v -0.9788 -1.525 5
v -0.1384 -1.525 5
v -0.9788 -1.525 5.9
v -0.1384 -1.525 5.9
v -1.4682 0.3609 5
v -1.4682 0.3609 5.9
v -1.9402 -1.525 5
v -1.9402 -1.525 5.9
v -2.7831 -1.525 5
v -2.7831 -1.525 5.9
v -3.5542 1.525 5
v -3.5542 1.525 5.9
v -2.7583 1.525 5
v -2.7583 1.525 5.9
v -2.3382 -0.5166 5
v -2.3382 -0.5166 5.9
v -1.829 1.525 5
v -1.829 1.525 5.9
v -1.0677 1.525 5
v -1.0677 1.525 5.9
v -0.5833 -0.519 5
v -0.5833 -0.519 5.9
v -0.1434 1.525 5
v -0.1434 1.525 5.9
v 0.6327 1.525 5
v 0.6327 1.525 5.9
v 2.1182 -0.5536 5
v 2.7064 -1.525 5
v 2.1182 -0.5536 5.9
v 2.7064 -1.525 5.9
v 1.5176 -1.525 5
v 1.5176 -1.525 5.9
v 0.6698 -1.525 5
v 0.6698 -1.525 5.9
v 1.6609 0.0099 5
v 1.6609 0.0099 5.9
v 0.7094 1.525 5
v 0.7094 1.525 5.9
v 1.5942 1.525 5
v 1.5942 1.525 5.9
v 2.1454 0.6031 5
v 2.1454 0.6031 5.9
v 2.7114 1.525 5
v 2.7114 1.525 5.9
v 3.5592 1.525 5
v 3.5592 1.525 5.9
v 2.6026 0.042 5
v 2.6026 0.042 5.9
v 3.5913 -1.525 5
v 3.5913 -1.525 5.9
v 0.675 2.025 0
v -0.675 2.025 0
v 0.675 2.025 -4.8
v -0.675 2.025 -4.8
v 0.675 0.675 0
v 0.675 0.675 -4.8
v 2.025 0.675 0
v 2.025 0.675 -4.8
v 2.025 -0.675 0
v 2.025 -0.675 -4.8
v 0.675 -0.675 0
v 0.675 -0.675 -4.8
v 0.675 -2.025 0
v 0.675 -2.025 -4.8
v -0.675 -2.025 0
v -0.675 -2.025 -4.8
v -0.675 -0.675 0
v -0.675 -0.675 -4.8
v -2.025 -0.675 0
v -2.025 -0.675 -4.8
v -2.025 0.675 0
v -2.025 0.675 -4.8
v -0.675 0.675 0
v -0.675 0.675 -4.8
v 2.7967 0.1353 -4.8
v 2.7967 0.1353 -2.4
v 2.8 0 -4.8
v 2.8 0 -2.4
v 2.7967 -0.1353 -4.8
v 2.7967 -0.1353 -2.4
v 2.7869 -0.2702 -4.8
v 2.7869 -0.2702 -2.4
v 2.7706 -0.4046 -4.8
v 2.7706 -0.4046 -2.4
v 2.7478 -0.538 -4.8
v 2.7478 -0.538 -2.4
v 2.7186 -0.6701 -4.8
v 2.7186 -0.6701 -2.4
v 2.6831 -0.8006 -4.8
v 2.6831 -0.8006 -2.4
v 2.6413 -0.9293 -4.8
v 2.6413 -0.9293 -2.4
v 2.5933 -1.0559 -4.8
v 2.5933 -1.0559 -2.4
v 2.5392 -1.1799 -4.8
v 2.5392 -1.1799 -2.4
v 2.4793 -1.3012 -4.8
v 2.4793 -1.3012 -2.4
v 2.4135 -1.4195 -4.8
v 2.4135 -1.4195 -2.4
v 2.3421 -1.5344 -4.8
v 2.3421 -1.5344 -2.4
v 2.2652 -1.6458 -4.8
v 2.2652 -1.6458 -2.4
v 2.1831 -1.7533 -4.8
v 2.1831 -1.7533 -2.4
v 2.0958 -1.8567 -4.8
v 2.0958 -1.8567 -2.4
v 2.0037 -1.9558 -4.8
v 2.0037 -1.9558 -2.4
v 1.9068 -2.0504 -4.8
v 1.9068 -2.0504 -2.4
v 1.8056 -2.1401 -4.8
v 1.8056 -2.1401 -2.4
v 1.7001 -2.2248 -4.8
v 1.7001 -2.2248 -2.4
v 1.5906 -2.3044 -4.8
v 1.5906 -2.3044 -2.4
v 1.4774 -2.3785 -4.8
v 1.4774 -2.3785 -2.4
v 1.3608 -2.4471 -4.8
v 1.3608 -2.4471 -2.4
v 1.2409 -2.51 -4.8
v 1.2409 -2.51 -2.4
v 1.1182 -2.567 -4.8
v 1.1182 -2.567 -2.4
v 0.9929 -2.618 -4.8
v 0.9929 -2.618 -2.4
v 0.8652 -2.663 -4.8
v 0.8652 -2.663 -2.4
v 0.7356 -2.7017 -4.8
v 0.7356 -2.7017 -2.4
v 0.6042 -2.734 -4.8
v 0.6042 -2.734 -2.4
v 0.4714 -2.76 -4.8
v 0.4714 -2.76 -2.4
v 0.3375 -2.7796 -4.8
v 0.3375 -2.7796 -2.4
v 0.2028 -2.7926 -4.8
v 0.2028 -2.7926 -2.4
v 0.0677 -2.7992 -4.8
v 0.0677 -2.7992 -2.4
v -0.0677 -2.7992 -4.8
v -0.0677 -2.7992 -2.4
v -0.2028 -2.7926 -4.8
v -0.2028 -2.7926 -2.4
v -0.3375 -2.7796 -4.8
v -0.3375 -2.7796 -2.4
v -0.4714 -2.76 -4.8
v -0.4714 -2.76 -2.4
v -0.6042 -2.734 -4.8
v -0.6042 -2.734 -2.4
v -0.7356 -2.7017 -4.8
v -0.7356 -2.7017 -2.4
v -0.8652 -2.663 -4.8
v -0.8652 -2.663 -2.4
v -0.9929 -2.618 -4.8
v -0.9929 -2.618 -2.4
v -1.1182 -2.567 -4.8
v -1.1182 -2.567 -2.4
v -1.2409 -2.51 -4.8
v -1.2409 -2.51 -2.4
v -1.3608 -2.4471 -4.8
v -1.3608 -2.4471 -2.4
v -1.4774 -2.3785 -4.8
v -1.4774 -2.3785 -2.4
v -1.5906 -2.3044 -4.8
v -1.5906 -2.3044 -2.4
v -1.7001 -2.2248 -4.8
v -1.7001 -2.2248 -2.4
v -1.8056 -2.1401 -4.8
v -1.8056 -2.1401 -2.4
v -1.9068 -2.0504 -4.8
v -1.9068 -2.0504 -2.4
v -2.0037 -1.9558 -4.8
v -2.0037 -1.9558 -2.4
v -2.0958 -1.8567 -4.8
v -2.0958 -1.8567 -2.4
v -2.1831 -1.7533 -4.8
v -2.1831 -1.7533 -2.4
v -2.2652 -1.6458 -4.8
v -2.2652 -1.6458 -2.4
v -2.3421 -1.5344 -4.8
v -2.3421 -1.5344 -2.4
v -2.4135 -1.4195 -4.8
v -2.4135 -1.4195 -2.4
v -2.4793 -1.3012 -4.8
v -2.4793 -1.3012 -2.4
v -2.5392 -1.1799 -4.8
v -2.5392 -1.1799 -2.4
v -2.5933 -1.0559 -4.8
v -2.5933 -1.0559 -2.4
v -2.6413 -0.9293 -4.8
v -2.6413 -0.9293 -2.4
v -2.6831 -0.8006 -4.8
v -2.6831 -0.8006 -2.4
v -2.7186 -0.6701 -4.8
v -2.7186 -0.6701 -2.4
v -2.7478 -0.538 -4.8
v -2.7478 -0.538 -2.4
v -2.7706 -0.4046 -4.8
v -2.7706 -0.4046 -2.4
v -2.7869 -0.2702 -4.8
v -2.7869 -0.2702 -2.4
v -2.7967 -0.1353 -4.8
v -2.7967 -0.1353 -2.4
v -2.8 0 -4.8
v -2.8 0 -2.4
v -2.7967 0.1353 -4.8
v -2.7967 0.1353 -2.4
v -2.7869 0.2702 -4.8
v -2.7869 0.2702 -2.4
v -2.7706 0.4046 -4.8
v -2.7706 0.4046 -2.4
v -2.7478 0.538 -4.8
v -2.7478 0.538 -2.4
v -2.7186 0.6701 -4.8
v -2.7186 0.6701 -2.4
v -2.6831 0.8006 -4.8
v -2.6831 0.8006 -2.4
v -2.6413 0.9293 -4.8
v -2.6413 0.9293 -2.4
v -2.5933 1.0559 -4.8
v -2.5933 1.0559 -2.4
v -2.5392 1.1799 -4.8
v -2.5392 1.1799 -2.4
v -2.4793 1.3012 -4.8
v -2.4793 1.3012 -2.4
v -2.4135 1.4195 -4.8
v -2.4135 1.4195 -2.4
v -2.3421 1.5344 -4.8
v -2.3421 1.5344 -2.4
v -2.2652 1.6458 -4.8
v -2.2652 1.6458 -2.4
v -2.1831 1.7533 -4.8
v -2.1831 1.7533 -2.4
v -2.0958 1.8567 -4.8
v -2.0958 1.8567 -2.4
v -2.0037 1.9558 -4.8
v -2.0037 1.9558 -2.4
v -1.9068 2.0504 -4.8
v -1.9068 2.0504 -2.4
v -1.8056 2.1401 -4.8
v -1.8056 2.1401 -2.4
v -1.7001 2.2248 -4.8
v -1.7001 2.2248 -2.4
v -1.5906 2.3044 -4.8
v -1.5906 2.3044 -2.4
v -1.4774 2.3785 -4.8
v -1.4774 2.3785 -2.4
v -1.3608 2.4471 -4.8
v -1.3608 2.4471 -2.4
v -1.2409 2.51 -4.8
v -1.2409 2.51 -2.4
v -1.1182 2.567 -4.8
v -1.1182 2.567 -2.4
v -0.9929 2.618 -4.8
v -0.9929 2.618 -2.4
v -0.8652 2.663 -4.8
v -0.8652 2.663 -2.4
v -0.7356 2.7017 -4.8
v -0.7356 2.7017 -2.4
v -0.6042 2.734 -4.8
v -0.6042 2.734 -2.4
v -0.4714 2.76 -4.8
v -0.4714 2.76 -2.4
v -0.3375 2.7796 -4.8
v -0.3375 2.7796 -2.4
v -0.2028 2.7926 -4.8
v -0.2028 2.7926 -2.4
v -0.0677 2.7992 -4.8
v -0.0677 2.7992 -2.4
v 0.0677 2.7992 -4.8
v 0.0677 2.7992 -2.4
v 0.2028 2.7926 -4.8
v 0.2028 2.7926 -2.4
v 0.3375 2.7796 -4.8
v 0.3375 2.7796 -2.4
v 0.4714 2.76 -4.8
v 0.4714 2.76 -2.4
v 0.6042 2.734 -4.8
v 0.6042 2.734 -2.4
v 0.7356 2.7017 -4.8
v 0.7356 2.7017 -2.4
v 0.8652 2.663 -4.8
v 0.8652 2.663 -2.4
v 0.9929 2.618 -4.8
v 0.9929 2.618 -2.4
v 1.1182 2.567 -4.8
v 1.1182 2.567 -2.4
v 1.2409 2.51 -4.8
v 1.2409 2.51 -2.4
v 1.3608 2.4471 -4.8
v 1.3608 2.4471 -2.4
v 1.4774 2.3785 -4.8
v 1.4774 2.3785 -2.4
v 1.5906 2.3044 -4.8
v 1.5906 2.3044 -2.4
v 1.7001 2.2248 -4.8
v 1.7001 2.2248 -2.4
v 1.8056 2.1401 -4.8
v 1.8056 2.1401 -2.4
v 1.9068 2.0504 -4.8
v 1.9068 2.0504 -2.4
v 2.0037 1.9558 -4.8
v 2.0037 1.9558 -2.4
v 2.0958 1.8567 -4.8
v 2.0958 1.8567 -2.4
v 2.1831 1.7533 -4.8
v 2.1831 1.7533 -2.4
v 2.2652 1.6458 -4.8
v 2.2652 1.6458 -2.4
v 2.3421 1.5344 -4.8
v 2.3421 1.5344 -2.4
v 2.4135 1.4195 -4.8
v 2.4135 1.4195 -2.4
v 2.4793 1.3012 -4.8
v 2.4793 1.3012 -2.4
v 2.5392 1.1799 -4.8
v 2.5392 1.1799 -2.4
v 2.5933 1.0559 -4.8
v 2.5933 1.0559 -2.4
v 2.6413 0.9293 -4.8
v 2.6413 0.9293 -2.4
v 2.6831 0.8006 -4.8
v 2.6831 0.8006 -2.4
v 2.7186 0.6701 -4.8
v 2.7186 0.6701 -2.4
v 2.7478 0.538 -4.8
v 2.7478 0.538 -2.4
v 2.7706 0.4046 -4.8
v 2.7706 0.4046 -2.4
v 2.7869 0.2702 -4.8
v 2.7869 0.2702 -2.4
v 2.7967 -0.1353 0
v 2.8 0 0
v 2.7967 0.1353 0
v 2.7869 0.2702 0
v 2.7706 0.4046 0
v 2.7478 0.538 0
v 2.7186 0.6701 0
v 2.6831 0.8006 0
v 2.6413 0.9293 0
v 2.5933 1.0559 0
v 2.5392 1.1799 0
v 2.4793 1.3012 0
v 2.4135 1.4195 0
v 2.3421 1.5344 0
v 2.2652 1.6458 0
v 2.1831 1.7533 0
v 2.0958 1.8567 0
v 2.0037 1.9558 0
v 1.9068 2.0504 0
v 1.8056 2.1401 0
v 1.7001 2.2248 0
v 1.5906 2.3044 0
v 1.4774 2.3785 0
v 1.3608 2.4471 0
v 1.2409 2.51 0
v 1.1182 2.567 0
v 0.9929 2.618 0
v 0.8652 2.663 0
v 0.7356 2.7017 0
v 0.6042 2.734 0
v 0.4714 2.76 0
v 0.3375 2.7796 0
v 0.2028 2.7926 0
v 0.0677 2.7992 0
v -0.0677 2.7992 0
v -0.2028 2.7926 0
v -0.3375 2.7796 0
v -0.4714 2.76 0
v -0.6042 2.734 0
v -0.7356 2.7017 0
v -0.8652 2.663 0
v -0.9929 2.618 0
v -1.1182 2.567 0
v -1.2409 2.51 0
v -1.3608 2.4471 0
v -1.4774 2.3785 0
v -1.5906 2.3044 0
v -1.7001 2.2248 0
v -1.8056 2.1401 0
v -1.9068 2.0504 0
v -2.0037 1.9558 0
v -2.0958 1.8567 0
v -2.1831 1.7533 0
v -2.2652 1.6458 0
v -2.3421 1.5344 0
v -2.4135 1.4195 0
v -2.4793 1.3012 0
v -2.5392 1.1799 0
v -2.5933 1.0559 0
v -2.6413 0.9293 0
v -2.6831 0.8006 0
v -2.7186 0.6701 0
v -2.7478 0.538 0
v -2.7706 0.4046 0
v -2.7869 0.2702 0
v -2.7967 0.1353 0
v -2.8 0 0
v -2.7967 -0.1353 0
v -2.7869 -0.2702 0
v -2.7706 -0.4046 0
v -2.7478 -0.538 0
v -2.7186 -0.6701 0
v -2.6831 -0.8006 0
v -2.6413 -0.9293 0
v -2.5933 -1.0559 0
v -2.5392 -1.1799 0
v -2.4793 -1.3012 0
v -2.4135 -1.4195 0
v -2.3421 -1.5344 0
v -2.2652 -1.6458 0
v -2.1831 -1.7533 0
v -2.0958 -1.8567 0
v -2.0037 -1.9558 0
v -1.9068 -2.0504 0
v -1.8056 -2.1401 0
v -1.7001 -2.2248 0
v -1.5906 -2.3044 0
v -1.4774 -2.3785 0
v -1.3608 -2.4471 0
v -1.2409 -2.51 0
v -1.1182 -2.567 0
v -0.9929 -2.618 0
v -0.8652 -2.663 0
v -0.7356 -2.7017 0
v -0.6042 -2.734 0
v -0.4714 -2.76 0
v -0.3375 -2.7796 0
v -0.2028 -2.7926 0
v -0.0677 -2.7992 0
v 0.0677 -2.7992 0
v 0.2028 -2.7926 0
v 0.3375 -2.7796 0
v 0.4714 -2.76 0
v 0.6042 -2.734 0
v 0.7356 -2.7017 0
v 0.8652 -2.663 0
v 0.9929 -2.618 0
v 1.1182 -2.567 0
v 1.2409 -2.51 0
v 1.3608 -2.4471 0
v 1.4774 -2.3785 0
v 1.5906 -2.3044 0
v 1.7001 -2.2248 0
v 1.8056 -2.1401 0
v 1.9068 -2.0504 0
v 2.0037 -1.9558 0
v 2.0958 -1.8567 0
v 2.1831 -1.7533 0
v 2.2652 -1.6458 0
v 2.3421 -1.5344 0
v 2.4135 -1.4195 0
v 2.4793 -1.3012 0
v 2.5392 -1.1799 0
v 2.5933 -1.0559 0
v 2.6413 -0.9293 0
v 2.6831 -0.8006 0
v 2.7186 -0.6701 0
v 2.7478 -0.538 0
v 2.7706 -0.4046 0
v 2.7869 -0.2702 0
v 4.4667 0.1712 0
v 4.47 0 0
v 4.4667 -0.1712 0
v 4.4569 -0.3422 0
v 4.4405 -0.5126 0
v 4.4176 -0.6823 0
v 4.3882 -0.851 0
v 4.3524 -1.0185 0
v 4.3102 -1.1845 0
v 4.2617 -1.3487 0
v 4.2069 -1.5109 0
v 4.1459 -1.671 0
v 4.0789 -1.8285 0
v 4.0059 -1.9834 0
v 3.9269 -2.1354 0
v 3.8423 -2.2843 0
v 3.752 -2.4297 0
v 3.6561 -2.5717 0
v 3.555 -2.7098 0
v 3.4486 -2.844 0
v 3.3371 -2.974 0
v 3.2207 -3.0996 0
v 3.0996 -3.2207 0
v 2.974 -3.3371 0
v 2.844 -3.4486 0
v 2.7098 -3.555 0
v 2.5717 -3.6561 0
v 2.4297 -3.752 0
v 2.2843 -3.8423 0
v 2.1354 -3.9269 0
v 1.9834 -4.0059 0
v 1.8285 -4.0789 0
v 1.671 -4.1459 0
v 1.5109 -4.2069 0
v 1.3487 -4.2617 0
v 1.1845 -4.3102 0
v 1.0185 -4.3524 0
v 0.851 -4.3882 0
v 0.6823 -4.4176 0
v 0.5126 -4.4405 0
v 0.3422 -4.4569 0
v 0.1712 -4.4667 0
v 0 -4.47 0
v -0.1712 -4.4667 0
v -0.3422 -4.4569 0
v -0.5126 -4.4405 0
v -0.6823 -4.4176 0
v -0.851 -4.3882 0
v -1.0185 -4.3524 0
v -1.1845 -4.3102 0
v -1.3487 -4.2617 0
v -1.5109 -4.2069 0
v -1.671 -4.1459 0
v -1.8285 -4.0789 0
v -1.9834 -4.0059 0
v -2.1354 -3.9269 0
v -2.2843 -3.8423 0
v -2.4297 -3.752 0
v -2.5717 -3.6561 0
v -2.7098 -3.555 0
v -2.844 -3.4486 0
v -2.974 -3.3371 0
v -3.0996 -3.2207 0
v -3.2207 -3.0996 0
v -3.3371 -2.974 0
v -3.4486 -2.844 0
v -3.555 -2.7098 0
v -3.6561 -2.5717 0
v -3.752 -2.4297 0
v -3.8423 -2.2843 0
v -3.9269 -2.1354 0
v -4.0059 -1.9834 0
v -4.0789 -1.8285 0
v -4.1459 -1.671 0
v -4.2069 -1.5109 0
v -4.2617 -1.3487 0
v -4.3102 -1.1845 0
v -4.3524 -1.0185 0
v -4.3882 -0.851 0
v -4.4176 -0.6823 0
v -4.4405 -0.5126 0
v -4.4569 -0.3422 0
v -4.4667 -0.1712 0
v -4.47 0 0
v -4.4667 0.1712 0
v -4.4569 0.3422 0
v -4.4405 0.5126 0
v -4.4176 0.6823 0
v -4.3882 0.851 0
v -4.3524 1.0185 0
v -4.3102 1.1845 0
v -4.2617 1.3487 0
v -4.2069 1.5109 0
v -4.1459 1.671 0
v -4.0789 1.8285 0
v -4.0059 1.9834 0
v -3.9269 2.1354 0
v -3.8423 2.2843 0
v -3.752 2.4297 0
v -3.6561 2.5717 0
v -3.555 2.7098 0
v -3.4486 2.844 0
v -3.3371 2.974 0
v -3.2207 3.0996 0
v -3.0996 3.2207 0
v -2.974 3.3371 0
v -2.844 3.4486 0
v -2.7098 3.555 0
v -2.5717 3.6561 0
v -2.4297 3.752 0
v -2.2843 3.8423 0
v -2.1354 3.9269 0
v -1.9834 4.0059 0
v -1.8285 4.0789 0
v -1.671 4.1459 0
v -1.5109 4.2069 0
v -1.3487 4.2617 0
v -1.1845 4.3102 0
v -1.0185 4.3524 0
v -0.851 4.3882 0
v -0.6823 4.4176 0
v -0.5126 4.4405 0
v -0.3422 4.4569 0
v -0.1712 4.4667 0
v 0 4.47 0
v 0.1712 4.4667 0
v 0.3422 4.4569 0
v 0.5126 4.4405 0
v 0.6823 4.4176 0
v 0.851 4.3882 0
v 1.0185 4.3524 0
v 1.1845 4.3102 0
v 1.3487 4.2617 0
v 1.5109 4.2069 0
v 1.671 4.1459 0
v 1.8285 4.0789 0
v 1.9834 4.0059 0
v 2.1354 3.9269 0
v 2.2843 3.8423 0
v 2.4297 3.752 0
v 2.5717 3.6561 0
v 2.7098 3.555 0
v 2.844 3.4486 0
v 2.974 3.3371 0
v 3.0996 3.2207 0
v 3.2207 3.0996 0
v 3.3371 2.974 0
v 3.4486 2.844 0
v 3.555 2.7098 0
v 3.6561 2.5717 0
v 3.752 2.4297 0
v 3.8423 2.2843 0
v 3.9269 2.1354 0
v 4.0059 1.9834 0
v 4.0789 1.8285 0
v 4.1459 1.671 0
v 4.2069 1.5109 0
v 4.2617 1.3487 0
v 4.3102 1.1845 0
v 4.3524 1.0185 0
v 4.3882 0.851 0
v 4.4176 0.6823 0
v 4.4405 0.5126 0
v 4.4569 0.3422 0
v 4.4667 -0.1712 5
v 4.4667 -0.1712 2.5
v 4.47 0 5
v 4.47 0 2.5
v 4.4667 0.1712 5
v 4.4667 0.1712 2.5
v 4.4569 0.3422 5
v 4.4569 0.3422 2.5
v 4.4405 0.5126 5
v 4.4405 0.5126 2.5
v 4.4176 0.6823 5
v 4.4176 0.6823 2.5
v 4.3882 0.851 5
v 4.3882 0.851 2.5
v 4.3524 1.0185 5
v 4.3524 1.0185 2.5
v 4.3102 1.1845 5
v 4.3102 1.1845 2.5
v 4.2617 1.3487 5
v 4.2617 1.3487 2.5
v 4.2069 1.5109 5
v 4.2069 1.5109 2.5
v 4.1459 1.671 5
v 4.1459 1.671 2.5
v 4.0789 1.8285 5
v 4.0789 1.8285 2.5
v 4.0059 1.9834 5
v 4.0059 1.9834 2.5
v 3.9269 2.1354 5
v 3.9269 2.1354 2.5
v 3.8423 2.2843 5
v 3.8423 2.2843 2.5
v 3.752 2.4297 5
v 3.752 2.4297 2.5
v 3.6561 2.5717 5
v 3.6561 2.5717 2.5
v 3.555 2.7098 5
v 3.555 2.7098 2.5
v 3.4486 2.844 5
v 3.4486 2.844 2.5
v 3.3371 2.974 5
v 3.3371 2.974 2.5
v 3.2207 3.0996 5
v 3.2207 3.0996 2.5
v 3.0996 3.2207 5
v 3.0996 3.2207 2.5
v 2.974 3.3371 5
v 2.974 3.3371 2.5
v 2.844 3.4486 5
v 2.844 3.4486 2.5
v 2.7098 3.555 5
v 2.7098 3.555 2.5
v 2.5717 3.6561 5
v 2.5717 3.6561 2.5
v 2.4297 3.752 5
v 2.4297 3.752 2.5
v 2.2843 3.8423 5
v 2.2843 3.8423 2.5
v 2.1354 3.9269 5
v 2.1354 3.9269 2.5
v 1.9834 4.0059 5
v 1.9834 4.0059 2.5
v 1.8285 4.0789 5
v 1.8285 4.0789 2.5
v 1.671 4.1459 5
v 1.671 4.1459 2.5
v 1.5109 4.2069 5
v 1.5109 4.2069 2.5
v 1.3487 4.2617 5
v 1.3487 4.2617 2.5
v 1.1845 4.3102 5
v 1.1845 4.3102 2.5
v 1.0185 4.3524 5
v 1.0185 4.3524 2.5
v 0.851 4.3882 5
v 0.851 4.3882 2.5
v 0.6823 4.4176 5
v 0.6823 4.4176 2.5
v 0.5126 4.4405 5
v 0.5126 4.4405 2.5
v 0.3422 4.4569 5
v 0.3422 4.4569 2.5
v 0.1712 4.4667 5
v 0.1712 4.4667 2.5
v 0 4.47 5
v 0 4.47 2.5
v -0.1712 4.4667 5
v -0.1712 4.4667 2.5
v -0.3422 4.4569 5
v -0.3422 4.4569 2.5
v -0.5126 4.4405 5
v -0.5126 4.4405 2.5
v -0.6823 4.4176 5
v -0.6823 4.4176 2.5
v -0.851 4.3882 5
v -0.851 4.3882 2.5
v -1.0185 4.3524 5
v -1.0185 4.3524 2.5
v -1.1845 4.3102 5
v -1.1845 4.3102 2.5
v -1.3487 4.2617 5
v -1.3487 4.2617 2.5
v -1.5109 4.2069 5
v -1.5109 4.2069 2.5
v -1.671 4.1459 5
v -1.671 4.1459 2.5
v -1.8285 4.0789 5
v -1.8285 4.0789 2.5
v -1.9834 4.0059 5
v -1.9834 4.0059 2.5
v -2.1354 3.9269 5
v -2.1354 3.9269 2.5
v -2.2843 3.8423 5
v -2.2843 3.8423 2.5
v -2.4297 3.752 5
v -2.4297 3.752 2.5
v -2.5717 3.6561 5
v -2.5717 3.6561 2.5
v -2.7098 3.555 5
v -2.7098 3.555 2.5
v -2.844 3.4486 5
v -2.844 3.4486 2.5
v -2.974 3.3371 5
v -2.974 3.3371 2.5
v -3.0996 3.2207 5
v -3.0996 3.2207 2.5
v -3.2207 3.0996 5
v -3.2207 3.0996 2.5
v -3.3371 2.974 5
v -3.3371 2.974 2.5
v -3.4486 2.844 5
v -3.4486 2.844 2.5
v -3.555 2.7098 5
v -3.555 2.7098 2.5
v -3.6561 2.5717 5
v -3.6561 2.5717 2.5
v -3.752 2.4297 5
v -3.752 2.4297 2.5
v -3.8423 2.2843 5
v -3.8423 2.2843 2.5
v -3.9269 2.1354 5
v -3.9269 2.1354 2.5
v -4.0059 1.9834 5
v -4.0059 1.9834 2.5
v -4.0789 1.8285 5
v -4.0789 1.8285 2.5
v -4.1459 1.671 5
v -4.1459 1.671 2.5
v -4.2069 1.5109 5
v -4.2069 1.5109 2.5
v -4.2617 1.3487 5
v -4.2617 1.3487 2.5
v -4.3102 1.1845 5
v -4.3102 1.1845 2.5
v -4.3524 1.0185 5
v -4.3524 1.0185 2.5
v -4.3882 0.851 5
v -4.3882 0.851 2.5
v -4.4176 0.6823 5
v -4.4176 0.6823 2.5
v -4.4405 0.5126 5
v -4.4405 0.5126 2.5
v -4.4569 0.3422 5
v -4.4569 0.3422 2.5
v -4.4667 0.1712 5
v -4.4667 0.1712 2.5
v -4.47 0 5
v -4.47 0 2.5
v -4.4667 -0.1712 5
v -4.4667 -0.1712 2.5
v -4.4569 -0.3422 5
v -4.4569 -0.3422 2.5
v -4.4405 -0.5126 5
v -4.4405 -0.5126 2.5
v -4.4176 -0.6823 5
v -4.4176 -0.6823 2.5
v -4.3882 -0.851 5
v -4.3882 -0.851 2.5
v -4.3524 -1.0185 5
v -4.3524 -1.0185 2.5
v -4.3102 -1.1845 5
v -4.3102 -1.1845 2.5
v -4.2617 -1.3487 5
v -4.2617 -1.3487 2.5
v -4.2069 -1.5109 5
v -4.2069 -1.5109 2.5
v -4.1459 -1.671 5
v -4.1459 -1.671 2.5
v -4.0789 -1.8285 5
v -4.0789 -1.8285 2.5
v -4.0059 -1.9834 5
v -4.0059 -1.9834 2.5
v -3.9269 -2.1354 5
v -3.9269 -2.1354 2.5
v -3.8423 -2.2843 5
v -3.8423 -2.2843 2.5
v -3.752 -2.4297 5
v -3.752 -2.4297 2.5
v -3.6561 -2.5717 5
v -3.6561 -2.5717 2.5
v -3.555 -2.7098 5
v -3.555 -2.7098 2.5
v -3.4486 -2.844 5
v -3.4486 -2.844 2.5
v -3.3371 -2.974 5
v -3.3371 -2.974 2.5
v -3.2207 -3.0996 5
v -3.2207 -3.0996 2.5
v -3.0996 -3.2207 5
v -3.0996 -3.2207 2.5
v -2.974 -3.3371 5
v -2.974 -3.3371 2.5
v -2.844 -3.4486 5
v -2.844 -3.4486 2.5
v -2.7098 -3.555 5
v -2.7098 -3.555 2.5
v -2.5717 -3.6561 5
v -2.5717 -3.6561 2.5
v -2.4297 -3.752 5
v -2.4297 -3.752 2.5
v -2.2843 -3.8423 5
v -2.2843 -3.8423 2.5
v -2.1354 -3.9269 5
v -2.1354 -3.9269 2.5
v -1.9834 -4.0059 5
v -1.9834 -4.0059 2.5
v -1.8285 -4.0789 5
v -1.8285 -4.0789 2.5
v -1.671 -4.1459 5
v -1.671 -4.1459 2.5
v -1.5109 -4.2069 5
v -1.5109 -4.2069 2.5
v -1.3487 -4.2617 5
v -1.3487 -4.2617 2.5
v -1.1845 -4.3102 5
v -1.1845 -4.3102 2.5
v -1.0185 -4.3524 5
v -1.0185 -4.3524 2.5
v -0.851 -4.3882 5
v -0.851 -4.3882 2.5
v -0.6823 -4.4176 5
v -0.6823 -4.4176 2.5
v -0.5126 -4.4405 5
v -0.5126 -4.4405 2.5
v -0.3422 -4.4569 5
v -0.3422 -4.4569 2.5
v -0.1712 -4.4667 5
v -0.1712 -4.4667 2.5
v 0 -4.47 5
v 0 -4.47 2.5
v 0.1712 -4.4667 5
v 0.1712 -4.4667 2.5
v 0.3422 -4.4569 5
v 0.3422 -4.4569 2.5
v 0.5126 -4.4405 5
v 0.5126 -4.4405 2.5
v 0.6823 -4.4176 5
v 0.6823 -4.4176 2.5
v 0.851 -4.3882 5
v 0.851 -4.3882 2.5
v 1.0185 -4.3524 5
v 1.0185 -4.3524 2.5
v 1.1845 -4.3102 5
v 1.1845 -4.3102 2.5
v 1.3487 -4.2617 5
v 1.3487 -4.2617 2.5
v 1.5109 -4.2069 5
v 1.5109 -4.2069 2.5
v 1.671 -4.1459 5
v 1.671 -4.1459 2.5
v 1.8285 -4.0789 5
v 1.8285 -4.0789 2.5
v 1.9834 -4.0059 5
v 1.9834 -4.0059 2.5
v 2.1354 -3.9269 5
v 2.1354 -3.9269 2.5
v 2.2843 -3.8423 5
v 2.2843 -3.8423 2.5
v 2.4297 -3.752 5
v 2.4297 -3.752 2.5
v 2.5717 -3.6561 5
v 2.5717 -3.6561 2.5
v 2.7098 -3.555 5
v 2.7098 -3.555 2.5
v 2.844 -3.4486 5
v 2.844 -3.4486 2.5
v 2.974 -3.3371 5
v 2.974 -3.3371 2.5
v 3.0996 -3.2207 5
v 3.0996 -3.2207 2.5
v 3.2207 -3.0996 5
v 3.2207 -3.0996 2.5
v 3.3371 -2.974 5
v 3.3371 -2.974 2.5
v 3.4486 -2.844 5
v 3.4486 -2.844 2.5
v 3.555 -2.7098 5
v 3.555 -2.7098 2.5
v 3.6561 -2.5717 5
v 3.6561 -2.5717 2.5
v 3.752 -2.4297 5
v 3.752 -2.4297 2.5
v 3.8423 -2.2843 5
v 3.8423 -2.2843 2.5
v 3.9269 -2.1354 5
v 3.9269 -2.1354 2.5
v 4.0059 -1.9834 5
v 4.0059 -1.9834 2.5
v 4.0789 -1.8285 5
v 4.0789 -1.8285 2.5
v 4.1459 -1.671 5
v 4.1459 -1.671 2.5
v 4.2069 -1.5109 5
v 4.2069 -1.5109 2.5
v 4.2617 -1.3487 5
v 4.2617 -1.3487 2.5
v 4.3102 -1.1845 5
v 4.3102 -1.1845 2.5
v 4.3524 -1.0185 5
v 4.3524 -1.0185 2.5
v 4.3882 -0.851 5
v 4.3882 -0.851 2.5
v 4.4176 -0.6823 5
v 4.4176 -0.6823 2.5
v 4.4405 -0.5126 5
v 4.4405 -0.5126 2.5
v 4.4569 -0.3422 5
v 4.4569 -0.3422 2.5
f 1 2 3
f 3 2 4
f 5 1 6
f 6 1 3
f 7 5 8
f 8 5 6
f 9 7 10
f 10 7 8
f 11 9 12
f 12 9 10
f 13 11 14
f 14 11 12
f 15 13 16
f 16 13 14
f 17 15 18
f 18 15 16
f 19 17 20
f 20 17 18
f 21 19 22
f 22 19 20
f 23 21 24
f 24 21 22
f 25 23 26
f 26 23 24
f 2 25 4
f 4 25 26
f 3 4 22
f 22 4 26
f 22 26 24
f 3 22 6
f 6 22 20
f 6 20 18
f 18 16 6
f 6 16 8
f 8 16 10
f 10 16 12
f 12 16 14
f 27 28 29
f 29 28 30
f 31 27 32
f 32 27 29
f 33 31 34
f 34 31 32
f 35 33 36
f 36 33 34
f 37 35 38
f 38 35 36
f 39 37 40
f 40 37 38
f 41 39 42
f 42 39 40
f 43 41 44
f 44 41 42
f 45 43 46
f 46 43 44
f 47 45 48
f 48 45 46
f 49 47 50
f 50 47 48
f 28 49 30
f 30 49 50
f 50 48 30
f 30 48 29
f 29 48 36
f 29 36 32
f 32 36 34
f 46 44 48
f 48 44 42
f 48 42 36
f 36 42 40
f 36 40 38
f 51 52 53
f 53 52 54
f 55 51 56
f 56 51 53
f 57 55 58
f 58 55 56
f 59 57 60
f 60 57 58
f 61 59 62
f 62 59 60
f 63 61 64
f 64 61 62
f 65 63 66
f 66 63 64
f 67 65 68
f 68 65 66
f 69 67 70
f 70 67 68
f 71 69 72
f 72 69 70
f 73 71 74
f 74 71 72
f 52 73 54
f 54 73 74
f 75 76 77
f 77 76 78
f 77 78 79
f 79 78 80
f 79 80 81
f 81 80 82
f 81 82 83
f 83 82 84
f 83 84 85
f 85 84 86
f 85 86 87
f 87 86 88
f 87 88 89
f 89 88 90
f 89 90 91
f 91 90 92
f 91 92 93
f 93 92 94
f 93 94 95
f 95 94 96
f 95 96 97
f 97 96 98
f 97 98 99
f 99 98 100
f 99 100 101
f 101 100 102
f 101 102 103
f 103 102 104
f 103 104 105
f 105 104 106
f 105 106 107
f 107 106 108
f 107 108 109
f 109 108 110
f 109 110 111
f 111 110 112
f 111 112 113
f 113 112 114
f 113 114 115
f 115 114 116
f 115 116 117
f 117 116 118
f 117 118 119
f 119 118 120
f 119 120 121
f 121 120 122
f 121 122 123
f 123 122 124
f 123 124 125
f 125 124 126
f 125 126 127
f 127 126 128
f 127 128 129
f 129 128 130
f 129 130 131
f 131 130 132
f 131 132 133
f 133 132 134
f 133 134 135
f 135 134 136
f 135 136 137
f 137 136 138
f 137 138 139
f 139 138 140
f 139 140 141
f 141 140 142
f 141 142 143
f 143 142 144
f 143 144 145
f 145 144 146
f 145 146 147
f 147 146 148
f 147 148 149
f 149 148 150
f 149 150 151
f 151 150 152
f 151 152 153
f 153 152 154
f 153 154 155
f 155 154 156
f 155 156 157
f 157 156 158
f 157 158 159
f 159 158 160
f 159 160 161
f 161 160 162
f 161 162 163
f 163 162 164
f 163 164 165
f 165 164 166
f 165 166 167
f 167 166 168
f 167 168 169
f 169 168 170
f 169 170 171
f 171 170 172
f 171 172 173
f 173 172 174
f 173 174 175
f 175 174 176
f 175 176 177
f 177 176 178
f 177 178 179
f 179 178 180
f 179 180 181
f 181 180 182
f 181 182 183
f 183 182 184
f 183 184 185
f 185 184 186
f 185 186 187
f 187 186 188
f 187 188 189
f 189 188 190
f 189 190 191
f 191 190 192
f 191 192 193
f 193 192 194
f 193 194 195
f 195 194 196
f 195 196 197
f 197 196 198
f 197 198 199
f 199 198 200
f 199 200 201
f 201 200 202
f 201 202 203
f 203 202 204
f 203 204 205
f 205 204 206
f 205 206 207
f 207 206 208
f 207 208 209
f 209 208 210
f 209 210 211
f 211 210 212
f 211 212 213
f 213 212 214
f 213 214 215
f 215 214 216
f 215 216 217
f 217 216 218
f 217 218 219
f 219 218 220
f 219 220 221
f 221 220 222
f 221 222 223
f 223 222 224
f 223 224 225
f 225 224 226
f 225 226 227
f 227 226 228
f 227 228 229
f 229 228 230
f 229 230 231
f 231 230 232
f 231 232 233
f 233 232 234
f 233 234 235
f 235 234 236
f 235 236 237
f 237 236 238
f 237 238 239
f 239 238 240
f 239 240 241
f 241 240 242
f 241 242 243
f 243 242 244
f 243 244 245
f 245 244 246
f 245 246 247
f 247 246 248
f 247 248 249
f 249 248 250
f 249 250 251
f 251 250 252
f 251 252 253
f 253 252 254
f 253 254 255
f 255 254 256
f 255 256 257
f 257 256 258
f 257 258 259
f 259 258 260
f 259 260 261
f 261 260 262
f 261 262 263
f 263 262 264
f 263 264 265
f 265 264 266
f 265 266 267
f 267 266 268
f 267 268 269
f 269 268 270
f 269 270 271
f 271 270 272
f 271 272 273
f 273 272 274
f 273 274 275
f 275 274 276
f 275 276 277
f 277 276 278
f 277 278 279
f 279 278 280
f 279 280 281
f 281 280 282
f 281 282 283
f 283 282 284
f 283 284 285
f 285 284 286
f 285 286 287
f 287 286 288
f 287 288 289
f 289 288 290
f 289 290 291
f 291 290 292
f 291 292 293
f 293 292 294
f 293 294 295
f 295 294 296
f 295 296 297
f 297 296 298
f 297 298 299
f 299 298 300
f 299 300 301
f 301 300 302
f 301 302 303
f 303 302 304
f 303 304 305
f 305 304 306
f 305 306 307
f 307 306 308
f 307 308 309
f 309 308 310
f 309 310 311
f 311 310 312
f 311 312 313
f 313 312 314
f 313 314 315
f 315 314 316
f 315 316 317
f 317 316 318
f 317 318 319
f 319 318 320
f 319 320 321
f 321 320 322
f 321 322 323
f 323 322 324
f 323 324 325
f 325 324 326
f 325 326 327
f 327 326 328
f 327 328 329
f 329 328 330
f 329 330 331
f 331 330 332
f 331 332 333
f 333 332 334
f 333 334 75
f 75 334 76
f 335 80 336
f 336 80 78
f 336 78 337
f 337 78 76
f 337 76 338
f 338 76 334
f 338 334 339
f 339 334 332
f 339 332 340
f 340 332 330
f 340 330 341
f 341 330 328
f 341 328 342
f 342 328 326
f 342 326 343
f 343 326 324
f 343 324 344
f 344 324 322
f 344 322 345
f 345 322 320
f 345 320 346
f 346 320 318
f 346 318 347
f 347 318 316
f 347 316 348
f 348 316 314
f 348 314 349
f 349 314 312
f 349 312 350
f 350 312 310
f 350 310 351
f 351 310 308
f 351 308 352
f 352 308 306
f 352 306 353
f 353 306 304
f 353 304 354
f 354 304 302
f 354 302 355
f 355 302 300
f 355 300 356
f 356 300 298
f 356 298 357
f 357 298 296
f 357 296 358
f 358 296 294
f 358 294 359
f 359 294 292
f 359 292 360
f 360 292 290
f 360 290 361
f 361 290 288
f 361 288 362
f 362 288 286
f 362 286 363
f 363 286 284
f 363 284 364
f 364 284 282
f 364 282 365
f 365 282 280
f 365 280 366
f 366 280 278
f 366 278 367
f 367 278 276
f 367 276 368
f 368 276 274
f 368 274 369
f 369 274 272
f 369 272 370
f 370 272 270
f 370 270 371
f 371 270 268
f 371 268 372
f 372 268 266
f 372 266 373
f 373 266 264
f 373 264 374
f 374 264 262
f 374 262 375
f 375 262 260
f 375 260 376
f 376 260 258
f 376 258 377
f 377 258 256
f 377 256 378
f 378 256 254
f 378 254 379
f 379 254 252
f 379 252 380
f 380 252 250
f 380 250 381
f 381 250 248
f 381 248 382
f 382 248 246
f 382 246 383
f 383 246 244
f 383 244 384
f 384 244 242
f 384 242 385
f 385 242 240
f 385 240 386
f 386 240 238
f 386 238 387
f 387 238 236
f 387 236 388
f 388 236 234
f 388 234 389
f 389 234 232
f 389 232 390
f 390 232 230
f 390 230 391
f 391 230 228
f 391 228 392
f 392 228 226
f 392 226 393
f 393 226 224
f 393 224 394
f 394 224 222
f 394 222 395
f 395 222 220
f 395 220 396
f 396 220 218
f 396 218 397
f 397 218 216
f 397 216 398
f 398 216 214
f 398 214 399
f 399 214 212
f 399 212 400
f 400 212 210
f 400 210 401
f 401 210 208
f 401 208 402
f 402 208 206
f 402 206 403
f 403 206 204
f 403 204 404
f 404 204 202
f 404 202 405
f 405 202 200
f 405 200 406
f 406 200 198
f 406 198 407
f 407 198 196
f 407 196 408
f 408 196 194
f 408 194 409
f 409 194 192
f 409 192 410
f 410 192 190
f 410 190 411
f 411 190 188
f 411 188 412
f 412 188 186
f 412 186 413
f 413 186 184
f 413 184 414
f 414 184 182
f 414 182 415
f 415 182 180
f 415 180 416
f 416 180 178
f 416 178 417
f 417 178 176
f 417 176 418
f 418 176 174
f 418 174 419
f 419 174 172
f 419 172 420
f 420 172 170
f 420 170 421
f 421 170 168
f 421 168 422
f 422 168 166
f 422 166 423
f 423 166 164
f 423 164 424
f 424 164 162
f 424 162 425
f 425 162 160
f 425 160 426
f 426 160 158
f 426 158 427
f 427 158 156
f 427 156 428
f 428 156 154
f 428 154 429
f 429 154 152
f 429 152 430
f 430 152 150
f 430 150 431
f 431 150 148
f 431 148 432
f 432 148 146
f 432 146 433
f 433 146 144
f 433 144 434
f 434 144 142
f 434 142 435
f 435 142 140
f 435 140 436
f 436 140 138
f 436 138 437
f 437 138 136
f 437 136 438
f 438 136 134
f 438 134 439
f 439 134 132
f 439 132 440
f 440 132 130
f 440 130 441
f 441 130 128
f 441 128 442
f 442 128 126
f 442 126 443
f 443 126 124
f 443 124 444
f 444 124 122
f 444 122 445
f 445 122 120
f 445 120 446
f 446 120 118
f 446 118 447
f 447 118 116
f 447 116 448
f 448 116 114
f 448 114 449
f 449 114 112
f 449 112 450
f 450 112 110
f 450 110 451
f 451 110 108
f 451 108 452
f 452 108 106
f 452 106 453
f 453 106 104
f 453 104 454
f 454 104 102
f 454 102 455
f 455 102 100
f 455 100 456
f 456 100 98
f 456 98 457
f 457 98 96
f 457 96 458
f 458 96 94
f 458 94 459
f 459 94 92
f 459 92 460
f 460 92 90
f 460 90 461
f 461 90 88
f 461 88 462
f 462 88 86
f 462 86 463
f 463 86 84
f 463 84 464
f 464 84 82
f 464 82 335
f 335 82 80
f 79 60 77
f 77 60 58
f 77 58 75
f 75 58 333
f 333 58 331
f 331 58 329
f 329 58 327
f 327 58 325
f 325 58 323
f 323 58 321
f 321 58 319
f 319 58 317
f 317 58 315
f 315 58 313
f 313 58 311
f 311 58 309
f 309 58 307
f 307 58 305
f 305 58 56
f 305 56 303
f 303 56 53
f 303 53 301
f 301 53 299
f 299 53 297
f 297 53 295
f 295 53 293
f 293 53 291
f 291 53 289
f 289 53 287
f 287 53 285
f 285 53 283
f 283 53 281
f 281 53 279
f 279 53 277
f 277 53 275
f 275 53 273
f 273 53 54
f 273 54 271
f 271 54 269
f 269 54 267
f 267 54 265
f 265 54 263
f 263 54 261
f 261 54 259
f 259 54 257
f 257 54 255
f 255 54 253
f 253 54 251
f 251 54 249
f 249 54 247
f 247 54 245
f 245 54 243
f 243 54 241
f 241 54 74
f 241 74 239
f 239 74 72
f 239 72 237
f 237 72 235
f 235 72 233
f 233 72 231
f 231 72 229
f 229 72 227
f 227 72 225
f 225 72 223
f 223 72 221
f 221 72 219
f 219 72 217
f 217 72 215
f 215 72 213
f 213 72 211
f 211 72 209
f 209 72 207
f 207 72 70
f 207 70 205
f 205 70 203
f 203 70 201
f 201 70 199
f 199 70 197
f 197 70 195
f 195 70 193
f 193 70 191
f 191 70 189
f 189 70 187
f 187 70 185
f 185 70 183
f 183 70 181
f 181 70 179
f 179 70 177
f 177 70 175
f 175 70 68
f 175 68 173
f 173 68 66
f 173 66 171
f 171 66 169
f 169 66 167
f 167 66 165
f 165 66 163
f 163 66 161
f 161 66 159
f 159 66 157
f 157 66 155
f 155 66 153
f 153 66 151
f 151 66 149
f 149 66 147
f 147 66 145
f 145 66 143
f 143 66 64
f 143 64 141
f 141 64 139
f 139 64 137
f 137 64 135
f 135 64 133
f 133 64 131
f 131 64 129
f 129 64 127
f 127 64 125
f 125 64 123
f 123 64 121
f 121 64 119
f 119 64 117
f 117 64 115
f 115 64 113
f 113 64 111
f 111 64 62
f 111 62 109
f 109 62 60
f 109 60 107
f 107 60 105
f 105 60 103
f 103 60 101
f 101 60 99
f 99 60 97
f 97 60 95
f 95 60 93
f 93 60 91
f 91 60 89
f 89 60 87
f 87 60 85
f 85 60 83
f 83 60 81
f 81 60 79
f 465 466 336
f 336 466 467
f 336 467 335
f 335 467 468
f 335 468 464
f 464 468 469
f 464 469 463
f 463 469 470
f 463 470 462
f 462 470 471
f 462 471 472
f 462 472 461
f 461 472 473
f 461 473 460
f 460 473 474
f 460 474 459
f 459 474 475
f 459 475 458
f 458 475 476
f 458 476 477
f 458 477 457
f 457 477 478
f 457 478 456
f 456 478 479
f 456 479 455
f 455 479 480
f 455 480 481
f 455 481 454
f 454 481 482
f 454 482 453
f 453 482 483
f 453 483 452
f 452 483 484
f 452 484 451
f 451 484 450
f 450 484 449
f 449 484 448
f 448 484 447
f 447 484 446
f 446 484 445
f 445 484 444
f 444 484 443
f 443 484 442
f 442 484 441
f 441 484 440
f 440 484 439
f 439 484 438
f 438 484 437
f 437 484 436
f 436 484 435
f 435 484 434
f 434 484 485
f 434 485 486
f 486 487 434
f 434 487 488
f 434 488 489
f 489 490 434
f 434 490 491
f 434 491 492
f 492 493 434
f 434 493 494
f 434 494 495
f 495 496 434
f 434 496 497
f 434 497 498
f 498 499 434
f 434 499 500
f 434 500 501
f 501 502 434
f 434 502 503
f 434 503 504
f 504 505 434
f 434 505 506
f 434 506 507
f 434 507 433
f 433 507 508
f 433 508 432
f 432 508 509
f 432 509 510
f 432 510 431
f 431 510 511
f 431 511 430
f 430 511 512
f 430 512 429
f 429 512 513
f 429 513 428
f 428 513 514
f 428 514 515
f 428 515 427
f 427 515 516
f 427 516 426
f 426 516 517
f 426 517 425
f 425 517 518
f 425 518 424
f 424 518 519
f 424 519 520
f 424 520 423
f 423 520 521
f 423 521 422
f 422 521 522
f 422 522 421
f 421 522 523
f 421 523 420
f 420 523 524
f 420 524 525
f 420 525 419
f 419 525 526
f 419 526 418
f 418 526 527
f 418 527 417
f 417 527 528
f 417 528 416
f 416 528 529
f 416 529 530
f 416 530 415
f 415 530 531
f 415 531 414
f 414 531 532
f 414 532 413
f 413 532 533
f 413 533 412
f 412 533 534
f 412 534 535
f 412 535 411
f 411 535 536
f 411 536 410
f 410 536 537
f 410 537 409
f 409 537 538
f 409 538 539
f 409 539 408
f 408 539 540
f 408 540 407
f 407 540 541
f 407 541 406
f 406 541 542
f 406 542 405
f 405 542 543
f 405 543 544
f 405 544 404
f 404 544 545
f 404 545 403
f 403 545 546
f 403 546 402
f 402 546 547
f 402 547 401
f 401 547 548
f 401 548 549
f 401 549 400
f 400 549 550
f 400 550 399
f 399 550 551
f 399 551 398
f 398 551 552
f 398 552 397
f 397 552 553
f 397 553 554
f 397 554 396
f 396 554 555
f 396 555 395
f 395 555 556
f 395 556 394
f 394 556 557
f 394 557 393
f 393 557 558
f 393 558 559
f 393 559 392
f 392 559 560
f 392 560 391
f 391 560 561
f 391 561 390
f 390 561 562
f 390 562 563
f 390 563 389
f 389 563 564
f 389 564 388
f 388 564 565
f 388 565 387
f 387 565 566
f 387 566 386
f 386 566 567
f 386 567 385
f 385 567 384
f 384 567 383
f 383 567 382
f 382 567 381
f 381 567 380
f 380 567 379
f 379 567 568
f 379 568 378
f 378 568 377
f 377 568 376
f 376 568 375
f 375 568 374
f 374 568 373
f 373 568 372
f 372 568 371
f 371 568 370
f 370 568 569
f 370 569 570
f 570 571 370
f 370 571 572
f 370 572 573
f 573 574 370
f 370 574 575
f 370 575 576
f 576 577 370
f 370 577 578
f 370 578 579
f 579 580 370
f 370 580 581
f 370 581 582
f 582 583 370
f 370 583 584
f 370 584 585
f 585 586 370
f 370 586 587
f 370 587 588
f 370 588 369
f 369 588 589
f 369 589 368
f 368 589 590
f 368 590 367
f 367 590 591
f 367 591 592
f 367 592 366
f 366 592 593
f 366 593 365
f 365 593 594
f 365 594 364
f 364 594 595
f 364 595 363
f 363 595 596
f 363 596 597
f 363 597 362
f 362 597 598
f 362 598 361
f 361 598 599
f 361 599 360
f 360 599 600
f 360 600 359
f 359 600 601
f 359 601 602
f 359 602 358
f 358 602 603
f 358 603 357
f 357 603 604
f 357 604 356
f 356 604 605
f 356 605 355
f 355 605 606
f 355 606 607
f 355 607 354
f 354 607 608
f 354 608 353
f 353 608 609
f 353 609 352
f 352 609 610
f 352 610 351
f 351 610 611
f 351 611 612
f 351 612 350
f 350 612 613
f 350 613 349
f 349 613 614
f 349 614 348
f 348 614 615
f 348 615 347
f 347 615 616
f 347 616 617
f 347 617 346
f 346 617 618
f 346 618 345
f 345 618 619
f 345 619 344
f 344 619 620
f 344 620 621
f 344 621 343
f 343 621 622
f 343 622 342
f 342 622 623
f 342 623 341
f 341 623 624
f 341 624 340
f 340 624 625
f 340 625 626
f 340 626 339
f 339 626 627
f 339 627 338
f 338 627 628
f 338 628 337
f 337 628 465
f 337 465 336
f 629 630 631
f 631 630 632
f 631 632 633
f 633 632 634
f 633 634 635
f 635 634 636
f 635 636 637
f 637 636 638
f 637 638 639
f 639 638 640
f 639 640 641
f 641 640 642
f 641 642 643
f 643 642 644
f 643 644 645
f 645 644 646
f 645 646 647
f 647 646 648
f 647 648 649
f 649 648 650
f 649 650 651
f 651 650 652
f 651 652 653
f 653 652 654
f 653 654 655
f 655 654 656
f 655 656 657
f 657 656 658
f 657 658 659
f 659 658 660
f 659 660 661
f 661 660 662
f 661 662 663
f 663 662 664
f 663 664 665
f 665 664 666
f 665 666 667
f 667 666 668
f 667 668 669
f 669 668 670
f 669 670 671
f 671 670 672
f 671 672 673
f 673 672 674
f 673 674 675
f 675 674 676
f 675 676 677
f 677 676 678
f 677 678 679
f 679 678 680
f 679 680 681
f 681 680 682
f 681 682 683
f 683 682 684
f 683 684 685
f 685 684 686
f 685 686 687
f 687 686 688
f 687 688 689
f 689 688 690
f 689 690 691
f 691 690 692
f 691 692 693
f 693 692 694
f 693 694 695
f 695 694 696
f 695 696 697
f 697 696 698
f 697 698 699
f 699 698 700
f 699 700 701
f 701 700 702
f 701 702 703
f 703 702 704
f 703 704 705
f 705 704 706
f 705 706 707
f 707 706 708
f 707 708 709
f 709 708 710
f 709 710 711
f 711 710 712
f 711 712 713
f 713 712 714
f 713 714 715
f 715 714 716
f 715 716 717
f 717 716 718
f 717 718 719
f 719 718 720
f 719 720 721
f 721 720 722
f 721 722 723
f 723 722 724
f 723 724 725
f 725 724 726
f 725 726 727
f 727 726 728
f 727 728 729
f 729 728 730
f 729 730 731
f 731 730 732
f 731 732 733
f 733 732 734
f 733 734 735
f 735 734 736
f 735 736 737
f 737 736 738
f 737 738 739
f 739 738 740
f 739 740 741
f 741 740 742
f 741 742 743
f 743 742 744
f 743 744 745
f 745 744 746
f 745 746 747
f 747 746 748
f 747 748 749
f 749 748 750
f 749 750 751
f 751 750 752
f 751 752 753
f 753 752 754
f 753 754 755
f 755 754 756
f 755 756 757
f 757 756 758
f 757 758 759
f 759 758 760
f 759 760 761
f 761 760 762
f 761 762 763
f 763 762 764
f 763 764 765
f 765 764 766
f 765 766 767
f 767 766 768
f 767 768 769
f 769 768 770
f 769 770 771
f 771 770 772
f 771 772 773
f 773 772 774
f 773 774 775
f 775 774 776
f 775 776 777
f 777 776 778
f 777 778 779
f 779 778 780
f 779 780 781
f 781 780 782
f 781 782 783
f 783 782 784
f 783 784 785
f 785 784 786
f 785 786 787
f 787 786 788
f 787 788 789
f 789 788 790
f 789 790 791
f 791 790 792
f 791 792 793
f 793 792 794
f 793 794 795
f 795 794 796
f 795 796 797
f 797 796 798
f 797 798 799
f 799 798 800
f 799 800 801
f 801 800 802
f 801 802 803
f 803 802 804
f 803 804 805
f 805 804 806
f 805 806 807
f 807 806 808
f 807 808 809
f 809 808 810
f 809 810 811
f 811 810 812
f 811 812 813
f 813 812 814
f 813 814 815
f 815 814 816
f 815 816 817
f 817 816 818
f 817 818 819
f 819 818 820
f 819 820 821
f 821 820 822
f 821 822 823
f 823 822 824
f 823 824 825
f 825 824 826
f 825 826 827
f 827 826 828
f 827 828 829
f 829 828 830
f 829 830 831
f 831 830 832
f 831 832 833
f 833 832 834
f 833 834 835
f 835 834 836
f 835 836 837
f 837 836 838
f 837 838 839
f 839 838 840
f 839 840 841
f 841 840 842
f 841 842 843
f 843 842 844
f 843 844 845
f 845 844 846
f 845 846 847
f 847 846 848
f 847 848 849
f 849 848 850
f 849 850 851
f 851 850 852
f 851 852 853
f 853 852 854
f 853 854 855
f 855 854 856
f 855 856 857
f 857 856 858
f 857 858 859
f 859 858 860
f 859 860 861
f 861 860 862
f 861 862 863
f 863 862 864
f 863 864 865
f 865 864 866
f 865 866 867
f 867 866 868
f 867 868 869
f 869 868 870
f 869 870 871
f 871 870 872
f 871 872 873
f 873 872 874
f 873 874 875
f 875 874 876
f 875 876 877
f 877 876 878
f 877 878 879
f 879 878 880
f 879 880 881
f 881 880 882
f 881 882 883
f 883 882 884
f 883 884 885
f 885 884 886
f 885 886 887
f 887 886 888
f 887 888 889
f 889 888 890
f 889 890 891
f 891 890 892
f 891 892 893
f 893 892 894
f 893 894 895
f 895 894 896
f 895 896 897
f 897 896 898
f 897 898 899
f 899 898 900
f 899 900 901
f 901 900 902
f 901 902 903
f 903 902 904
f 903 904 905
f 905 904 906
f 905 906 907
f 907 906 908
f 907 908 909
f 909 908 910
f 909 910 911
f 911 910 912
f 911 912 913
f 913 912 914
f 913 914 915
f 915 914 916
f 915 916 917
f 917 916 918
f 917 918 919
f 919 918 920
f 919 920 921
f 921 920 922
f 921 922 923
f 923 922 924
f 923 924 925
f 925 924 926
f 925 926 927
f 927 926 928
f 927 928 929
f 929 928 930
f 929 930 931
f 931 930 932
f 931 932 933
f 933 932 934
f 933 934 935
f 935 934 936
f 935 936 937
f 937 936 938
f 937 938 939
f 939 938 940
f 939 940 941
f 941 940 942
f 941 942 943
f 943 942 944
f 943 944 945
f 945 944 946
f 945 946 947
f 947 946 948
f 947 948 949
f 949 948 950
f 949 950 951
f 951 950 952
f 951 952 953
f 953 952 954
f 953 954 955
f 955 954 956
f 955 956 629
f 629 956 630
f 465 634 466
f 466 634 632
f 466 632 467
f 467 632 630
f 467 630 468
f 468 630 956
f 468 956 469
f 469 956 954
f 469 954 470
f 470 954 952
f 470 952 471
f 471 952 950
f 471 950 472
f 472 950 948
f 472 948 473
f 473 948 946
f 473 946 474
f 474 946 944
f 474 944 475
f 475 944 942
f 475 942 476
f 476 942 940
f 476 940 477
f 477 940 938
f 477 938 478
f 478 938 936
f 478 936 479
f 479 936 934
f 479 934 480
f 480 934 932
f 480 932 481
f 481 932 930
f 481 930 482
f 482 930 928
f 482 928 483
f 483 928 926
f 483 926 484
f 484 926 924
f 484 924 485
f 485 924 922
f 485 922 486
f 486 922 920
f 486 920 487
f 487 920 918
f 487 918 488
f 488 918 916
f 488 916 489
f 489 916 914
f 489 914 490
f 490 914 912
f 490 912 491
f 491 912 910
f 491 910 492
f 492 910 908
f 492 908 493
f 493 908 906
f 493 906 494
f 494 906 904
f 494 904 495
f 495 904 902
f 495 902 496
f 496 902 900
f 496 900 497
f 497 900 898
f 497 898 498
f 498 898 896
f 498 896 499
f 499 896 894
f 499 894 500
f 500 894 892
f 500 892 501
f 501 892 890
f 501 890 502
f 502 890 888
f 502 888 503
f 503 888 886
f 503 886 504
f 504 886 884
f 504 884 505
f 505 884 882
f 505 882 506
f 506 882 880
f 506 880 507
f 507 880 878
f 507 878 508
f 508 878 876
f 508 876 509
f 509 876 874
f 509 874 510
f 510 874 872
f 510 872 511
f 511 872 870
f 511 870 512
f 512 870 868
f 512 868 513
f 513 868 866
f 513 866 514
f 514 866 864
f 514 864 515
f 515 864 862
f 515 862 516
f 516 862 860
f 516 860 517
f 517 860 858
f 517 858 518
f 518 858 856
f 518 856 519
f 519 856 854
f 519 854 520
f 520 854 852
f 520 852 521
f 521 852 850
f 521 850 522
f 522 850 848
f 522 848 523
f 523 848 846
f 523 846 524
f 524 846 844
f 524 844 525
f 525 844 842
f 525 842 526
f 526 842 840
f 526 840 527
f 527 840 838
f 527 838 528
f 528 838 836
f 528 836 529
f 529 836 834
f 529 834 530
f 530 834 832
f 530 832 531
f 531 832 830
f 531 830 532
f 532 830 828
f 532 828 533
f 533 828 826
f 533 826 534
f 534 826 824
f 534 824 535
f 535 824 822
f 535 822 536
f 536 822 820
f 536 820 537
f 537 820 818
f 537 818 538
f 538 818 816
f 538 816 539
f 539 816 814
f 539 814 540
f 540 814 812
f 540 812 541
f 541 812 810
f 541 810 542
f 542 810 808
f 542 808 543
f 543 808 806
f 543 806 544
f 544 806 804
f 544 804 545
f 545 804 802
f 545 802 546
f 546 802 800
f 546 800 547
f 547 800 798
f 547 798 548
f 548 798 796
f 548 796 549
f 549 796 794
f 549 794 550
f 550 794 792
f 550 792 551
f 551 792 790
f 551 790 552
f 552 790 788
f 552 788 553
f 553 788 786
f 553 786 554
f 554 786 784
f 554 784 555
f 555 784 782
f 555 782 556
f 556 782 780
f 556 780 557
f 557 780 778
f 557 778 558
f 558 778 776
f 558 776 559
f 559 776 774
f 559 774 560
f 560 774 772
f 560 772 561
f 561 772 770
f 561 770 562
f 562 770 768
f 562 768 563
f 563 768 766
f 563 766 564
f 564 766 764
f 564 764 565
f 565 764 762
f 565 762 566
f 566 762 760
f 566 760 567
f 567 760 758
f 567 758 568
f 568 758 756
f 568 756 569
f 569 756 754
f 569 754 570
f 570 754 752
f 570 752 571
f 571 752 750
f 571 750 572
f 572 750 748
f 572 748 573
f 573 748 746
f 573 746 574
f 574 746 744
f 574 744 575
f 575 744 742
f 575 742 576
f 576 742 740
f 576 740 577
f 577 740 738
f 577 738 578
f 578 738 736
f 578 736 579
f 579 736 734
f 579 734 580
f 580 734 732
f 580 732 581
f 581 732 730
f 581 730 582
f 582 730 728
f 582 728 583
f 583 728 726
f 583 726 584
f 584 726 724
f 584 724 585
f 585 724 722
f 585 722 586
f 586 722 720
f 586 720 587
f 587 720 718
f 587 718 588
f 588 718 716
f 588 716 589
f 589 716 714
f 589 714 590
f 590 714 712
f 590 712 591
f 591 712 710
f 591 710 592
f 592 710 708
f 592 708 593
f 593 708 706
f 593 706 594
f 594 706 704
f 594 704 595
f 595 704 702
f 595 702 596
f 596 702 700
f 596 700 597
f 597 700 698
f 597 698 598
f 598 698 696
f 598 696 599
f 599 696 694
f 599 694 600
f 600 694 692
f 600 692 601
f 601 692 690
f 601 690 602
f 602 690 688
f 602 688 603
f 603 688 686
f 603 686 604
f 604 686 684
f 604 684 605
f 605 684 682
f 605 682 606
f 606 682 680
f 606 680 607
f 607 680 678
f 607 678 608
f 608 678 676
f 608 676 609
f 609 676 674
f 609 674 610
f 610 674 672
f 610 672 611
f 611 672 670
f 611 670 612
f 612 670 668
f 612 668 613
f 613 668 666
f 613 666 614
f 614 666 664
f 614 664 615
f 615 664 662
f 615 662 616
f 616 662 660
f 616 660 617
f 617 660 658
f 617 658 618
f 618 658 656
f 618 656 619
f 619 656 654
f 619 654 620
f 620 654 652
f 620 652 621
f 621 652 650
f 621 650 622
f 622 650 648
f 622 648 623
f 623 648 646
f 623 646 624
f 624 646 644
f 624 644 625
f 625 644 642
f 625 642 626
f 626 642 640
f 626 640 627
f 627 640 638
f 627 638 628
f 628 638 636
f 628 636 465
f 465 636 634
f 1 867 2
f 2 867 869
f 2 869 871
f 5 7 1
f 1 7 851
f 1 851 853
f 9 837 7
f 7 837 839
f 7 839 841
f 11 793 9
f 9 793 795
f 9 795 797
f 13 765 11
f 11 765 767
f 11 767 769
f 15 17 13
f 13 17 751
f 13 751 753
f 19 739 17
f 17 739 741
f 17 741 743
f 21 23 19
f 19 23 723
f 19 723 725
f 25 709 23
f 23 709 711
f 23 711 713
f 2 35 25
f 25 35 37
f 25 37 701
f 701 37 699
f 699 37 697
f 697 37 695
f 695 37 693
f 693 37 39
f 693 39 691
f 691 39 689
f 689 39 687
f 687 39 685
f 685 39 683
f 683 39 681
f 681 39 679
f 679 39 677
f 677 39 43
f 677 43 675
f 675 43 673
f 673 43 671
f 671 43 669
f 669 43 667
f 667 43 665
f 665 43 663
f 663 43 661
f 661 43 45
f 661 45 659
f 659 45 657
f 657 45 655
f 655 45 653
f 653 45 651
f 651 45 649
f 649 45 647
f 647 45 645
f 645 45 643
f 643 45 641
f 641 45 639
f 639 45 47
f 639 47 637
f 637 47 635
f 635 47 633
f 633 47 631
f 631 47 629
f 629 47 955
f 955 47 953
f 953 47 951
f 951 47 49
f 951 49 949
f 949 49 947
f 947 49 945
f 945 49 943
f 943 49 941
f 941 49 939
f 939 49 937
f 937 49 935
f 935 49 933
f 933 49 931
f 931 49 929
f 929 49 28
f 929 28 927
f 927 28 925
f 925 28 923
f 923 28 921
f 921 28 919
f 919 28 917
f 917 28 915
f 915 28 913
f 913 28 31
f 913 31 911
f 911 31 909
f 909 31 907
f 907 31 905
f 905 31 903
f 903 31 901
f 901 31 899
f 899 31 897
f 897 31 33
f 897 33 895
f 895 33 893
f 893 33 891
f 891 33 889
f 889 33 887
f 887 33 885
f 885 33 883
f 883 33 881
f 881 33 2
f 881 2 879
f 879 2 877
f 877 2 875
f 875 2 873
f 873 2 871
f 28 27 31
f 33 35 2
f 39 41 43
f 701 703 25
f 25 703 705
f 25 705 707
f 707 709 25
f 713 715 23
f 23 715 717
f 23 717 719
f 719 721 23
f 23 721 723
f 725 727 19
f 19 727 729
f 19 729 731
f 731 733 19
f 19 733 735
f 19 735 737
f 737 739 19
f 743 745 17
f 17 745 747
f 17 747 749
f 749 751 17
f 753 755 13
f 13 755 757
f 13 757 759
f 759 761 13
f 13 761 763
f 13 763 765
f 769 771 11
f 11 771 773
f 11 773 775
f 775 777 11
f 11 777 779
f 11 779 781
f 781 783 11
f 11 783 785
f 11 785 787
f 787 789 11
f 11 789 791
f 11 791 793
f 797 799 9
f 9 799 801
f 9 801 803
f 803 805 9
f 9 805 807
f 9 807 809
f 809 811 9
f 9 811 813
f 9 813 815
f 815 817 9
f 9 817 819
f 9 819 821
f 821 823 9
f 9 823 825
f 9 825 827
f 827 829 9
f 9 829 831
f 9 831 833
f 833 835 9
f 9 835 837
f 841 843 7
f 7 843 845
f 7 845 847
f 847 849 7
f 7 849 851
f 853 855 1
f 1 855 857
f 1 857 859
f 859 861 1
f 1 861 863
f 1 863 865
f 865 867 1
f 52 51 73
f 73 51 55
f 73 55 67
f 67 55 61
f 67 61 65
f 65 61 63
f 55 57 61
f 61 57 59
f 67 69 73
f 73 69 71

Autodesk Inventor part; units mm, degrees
ref_plane "YZ Plane" through (0, 0, 0) normal (1, 0, 0) x (0, 1, 0)
ref_plane "XZ Plane" through (0, 0, 0) normal (0, 1, 0) x (-1, 0, 0)
ref_plane "XY Plane" through (0, 0, 0) normal (0, 0, 1) x (1, 0, 0)
sketch "Sketch1" plane through (0, 0, 0) normal (0, 0, 1) x (1, 0, 0)
  circle A0 centre (0, 0) radius 2.8
  line L0 (-0.675, 0.675) -> (-0.675, 2.025)
  line L1 (-0.675, 2.025) -> (0.675, 2.025)
  line L2 (0.675, 2.025) -> (0.675, 0.675)
  line L3 (0.675, 0.675) -> (2.025, 0.675)
  line L4 (2.025, 0.675) -> (2.025, -0.675)
  line L5 (2.025, -0.675) -> (0.675, -0.675)
  line L6 (0.675, -0.675) -> (0.675, -2.025)
  line L7 (0.675, -2.025) -> (-0.675, -2.025)
  line L8 (-0.675, -2.025) -> (-0.675, -0.675)
  line L9 (-0.675, -0.675) -> (-2.025, -0.675)
  line L10 (-2.025, -0.675) -> (-2.025, 0.675)
  line L11 (-2.025, 0.675) -> (-0.675, 0.675)
  circle A1 centre (0, 0) radius 4.94 construction
  circle A2 centre (0, 0) radius 4.47
  point P0 (-6.07, -6.1)
  dimension "d16" = 9.88
  dimension "d17" = 0.47
extrude "Extrusion8" add sketch "Sketch1" along normal blind 5 contours A0 | L0 L1 L2 L3 L4 L5 L6 L7 L8 L9 L10 L11 | A2
extrude "Extrusion9" add sketch "Sketch1" against normal blind 4.8 contours A0
sketch "Sketch4" plane through (0, 0, 5) normal (0, 0, 1) x (1, 0, 0)
  line L0 (-3.616, 1.525) -> (3.616, 1.525) construction
  line L1 (3.616, 1.525) -> (3.616, -1.525) construction
  line L2 (3.616, -1.525) -> (-3.616, -1.525) construction
  line L3 (-3.616, -1.525) -> (-3.616, 1.525) construction
  line L4 (0.6327, 1.525) -> (-0.1384, -1.525)
  line L5 (-0.1384, -1.525) -> (-0.9788, -1.525)
  line L6 (-0.9788, -1.525) -> (-1.4682, 0.3609)
  line L7 (-1.4682, 0.3609) -> (-1.9402, -1.525)
  line L8 (-1.9402, -1.525) -> (-2.7831, -1.525)
  line L9 (-2.7831, -1.525) -> (-3.5542, 1.525)
  line L10 (-3.5542, 1.525) -> (-2.7583, 1.525)
  line L11 (-2.7583, 1.525) -> (-2.3382, -0.5166)
  line L12 (-2.3382, -0.5166) -> (-1.829, 1.525)
  line L13 (-1.829, 1.525) -> (-1.0677, 1.525)
  line L14 (-1.0677, 1.525) -> (-0.5833, -0.519)
  line L15 (-0.5833, -0.519) -> (-0.1434, 1.525)
  line L16 (-0.1434, 1.525) -> (0.6327, 1.525)
  line L17 (3.5913, -1.525) -> (2.7064, -1.525)
  line L18 (2.7064, -1.525) -> (2.1182, -0.5536)
  line L19 (2.1182, -0.5536) -> (1.5176, -1.525)
  line L20 (1.5176, -1.525) -> (0.6698, -1.525)
  line L21 (0.6698, -1.525) -> (1.6609, 0.0099)
  line L22 (1.6609, 0.0099) -> (0.7094, 1.525)
  line L23 (0.7094, 1.525) -> (1.5942, 1.525)
  line L24 (1.5942, 1.525) -> (2.1454, 0.6031)
  line L25 (2.1454, 0.6031) -> (2.7114, 1.525)
  line L26 (2.7114, 1.525) -> (3.5592, 1.525)
  line L27 (3.5592, 1.525) -> (2.6026, 0.042)
  line L28 (2.6026, 0.042) -> (3.5913, -1.525)
  point P0 (0, 0)
  point P1 (0, -1.525)
  point P2 (3.616, 0)
  point P3 (0, 0)
  point P4 (0, 0)
extrude "Extrusion10" add sketch "Sketch4" along normal blind 0.9
properties part number "IPC WX key"
